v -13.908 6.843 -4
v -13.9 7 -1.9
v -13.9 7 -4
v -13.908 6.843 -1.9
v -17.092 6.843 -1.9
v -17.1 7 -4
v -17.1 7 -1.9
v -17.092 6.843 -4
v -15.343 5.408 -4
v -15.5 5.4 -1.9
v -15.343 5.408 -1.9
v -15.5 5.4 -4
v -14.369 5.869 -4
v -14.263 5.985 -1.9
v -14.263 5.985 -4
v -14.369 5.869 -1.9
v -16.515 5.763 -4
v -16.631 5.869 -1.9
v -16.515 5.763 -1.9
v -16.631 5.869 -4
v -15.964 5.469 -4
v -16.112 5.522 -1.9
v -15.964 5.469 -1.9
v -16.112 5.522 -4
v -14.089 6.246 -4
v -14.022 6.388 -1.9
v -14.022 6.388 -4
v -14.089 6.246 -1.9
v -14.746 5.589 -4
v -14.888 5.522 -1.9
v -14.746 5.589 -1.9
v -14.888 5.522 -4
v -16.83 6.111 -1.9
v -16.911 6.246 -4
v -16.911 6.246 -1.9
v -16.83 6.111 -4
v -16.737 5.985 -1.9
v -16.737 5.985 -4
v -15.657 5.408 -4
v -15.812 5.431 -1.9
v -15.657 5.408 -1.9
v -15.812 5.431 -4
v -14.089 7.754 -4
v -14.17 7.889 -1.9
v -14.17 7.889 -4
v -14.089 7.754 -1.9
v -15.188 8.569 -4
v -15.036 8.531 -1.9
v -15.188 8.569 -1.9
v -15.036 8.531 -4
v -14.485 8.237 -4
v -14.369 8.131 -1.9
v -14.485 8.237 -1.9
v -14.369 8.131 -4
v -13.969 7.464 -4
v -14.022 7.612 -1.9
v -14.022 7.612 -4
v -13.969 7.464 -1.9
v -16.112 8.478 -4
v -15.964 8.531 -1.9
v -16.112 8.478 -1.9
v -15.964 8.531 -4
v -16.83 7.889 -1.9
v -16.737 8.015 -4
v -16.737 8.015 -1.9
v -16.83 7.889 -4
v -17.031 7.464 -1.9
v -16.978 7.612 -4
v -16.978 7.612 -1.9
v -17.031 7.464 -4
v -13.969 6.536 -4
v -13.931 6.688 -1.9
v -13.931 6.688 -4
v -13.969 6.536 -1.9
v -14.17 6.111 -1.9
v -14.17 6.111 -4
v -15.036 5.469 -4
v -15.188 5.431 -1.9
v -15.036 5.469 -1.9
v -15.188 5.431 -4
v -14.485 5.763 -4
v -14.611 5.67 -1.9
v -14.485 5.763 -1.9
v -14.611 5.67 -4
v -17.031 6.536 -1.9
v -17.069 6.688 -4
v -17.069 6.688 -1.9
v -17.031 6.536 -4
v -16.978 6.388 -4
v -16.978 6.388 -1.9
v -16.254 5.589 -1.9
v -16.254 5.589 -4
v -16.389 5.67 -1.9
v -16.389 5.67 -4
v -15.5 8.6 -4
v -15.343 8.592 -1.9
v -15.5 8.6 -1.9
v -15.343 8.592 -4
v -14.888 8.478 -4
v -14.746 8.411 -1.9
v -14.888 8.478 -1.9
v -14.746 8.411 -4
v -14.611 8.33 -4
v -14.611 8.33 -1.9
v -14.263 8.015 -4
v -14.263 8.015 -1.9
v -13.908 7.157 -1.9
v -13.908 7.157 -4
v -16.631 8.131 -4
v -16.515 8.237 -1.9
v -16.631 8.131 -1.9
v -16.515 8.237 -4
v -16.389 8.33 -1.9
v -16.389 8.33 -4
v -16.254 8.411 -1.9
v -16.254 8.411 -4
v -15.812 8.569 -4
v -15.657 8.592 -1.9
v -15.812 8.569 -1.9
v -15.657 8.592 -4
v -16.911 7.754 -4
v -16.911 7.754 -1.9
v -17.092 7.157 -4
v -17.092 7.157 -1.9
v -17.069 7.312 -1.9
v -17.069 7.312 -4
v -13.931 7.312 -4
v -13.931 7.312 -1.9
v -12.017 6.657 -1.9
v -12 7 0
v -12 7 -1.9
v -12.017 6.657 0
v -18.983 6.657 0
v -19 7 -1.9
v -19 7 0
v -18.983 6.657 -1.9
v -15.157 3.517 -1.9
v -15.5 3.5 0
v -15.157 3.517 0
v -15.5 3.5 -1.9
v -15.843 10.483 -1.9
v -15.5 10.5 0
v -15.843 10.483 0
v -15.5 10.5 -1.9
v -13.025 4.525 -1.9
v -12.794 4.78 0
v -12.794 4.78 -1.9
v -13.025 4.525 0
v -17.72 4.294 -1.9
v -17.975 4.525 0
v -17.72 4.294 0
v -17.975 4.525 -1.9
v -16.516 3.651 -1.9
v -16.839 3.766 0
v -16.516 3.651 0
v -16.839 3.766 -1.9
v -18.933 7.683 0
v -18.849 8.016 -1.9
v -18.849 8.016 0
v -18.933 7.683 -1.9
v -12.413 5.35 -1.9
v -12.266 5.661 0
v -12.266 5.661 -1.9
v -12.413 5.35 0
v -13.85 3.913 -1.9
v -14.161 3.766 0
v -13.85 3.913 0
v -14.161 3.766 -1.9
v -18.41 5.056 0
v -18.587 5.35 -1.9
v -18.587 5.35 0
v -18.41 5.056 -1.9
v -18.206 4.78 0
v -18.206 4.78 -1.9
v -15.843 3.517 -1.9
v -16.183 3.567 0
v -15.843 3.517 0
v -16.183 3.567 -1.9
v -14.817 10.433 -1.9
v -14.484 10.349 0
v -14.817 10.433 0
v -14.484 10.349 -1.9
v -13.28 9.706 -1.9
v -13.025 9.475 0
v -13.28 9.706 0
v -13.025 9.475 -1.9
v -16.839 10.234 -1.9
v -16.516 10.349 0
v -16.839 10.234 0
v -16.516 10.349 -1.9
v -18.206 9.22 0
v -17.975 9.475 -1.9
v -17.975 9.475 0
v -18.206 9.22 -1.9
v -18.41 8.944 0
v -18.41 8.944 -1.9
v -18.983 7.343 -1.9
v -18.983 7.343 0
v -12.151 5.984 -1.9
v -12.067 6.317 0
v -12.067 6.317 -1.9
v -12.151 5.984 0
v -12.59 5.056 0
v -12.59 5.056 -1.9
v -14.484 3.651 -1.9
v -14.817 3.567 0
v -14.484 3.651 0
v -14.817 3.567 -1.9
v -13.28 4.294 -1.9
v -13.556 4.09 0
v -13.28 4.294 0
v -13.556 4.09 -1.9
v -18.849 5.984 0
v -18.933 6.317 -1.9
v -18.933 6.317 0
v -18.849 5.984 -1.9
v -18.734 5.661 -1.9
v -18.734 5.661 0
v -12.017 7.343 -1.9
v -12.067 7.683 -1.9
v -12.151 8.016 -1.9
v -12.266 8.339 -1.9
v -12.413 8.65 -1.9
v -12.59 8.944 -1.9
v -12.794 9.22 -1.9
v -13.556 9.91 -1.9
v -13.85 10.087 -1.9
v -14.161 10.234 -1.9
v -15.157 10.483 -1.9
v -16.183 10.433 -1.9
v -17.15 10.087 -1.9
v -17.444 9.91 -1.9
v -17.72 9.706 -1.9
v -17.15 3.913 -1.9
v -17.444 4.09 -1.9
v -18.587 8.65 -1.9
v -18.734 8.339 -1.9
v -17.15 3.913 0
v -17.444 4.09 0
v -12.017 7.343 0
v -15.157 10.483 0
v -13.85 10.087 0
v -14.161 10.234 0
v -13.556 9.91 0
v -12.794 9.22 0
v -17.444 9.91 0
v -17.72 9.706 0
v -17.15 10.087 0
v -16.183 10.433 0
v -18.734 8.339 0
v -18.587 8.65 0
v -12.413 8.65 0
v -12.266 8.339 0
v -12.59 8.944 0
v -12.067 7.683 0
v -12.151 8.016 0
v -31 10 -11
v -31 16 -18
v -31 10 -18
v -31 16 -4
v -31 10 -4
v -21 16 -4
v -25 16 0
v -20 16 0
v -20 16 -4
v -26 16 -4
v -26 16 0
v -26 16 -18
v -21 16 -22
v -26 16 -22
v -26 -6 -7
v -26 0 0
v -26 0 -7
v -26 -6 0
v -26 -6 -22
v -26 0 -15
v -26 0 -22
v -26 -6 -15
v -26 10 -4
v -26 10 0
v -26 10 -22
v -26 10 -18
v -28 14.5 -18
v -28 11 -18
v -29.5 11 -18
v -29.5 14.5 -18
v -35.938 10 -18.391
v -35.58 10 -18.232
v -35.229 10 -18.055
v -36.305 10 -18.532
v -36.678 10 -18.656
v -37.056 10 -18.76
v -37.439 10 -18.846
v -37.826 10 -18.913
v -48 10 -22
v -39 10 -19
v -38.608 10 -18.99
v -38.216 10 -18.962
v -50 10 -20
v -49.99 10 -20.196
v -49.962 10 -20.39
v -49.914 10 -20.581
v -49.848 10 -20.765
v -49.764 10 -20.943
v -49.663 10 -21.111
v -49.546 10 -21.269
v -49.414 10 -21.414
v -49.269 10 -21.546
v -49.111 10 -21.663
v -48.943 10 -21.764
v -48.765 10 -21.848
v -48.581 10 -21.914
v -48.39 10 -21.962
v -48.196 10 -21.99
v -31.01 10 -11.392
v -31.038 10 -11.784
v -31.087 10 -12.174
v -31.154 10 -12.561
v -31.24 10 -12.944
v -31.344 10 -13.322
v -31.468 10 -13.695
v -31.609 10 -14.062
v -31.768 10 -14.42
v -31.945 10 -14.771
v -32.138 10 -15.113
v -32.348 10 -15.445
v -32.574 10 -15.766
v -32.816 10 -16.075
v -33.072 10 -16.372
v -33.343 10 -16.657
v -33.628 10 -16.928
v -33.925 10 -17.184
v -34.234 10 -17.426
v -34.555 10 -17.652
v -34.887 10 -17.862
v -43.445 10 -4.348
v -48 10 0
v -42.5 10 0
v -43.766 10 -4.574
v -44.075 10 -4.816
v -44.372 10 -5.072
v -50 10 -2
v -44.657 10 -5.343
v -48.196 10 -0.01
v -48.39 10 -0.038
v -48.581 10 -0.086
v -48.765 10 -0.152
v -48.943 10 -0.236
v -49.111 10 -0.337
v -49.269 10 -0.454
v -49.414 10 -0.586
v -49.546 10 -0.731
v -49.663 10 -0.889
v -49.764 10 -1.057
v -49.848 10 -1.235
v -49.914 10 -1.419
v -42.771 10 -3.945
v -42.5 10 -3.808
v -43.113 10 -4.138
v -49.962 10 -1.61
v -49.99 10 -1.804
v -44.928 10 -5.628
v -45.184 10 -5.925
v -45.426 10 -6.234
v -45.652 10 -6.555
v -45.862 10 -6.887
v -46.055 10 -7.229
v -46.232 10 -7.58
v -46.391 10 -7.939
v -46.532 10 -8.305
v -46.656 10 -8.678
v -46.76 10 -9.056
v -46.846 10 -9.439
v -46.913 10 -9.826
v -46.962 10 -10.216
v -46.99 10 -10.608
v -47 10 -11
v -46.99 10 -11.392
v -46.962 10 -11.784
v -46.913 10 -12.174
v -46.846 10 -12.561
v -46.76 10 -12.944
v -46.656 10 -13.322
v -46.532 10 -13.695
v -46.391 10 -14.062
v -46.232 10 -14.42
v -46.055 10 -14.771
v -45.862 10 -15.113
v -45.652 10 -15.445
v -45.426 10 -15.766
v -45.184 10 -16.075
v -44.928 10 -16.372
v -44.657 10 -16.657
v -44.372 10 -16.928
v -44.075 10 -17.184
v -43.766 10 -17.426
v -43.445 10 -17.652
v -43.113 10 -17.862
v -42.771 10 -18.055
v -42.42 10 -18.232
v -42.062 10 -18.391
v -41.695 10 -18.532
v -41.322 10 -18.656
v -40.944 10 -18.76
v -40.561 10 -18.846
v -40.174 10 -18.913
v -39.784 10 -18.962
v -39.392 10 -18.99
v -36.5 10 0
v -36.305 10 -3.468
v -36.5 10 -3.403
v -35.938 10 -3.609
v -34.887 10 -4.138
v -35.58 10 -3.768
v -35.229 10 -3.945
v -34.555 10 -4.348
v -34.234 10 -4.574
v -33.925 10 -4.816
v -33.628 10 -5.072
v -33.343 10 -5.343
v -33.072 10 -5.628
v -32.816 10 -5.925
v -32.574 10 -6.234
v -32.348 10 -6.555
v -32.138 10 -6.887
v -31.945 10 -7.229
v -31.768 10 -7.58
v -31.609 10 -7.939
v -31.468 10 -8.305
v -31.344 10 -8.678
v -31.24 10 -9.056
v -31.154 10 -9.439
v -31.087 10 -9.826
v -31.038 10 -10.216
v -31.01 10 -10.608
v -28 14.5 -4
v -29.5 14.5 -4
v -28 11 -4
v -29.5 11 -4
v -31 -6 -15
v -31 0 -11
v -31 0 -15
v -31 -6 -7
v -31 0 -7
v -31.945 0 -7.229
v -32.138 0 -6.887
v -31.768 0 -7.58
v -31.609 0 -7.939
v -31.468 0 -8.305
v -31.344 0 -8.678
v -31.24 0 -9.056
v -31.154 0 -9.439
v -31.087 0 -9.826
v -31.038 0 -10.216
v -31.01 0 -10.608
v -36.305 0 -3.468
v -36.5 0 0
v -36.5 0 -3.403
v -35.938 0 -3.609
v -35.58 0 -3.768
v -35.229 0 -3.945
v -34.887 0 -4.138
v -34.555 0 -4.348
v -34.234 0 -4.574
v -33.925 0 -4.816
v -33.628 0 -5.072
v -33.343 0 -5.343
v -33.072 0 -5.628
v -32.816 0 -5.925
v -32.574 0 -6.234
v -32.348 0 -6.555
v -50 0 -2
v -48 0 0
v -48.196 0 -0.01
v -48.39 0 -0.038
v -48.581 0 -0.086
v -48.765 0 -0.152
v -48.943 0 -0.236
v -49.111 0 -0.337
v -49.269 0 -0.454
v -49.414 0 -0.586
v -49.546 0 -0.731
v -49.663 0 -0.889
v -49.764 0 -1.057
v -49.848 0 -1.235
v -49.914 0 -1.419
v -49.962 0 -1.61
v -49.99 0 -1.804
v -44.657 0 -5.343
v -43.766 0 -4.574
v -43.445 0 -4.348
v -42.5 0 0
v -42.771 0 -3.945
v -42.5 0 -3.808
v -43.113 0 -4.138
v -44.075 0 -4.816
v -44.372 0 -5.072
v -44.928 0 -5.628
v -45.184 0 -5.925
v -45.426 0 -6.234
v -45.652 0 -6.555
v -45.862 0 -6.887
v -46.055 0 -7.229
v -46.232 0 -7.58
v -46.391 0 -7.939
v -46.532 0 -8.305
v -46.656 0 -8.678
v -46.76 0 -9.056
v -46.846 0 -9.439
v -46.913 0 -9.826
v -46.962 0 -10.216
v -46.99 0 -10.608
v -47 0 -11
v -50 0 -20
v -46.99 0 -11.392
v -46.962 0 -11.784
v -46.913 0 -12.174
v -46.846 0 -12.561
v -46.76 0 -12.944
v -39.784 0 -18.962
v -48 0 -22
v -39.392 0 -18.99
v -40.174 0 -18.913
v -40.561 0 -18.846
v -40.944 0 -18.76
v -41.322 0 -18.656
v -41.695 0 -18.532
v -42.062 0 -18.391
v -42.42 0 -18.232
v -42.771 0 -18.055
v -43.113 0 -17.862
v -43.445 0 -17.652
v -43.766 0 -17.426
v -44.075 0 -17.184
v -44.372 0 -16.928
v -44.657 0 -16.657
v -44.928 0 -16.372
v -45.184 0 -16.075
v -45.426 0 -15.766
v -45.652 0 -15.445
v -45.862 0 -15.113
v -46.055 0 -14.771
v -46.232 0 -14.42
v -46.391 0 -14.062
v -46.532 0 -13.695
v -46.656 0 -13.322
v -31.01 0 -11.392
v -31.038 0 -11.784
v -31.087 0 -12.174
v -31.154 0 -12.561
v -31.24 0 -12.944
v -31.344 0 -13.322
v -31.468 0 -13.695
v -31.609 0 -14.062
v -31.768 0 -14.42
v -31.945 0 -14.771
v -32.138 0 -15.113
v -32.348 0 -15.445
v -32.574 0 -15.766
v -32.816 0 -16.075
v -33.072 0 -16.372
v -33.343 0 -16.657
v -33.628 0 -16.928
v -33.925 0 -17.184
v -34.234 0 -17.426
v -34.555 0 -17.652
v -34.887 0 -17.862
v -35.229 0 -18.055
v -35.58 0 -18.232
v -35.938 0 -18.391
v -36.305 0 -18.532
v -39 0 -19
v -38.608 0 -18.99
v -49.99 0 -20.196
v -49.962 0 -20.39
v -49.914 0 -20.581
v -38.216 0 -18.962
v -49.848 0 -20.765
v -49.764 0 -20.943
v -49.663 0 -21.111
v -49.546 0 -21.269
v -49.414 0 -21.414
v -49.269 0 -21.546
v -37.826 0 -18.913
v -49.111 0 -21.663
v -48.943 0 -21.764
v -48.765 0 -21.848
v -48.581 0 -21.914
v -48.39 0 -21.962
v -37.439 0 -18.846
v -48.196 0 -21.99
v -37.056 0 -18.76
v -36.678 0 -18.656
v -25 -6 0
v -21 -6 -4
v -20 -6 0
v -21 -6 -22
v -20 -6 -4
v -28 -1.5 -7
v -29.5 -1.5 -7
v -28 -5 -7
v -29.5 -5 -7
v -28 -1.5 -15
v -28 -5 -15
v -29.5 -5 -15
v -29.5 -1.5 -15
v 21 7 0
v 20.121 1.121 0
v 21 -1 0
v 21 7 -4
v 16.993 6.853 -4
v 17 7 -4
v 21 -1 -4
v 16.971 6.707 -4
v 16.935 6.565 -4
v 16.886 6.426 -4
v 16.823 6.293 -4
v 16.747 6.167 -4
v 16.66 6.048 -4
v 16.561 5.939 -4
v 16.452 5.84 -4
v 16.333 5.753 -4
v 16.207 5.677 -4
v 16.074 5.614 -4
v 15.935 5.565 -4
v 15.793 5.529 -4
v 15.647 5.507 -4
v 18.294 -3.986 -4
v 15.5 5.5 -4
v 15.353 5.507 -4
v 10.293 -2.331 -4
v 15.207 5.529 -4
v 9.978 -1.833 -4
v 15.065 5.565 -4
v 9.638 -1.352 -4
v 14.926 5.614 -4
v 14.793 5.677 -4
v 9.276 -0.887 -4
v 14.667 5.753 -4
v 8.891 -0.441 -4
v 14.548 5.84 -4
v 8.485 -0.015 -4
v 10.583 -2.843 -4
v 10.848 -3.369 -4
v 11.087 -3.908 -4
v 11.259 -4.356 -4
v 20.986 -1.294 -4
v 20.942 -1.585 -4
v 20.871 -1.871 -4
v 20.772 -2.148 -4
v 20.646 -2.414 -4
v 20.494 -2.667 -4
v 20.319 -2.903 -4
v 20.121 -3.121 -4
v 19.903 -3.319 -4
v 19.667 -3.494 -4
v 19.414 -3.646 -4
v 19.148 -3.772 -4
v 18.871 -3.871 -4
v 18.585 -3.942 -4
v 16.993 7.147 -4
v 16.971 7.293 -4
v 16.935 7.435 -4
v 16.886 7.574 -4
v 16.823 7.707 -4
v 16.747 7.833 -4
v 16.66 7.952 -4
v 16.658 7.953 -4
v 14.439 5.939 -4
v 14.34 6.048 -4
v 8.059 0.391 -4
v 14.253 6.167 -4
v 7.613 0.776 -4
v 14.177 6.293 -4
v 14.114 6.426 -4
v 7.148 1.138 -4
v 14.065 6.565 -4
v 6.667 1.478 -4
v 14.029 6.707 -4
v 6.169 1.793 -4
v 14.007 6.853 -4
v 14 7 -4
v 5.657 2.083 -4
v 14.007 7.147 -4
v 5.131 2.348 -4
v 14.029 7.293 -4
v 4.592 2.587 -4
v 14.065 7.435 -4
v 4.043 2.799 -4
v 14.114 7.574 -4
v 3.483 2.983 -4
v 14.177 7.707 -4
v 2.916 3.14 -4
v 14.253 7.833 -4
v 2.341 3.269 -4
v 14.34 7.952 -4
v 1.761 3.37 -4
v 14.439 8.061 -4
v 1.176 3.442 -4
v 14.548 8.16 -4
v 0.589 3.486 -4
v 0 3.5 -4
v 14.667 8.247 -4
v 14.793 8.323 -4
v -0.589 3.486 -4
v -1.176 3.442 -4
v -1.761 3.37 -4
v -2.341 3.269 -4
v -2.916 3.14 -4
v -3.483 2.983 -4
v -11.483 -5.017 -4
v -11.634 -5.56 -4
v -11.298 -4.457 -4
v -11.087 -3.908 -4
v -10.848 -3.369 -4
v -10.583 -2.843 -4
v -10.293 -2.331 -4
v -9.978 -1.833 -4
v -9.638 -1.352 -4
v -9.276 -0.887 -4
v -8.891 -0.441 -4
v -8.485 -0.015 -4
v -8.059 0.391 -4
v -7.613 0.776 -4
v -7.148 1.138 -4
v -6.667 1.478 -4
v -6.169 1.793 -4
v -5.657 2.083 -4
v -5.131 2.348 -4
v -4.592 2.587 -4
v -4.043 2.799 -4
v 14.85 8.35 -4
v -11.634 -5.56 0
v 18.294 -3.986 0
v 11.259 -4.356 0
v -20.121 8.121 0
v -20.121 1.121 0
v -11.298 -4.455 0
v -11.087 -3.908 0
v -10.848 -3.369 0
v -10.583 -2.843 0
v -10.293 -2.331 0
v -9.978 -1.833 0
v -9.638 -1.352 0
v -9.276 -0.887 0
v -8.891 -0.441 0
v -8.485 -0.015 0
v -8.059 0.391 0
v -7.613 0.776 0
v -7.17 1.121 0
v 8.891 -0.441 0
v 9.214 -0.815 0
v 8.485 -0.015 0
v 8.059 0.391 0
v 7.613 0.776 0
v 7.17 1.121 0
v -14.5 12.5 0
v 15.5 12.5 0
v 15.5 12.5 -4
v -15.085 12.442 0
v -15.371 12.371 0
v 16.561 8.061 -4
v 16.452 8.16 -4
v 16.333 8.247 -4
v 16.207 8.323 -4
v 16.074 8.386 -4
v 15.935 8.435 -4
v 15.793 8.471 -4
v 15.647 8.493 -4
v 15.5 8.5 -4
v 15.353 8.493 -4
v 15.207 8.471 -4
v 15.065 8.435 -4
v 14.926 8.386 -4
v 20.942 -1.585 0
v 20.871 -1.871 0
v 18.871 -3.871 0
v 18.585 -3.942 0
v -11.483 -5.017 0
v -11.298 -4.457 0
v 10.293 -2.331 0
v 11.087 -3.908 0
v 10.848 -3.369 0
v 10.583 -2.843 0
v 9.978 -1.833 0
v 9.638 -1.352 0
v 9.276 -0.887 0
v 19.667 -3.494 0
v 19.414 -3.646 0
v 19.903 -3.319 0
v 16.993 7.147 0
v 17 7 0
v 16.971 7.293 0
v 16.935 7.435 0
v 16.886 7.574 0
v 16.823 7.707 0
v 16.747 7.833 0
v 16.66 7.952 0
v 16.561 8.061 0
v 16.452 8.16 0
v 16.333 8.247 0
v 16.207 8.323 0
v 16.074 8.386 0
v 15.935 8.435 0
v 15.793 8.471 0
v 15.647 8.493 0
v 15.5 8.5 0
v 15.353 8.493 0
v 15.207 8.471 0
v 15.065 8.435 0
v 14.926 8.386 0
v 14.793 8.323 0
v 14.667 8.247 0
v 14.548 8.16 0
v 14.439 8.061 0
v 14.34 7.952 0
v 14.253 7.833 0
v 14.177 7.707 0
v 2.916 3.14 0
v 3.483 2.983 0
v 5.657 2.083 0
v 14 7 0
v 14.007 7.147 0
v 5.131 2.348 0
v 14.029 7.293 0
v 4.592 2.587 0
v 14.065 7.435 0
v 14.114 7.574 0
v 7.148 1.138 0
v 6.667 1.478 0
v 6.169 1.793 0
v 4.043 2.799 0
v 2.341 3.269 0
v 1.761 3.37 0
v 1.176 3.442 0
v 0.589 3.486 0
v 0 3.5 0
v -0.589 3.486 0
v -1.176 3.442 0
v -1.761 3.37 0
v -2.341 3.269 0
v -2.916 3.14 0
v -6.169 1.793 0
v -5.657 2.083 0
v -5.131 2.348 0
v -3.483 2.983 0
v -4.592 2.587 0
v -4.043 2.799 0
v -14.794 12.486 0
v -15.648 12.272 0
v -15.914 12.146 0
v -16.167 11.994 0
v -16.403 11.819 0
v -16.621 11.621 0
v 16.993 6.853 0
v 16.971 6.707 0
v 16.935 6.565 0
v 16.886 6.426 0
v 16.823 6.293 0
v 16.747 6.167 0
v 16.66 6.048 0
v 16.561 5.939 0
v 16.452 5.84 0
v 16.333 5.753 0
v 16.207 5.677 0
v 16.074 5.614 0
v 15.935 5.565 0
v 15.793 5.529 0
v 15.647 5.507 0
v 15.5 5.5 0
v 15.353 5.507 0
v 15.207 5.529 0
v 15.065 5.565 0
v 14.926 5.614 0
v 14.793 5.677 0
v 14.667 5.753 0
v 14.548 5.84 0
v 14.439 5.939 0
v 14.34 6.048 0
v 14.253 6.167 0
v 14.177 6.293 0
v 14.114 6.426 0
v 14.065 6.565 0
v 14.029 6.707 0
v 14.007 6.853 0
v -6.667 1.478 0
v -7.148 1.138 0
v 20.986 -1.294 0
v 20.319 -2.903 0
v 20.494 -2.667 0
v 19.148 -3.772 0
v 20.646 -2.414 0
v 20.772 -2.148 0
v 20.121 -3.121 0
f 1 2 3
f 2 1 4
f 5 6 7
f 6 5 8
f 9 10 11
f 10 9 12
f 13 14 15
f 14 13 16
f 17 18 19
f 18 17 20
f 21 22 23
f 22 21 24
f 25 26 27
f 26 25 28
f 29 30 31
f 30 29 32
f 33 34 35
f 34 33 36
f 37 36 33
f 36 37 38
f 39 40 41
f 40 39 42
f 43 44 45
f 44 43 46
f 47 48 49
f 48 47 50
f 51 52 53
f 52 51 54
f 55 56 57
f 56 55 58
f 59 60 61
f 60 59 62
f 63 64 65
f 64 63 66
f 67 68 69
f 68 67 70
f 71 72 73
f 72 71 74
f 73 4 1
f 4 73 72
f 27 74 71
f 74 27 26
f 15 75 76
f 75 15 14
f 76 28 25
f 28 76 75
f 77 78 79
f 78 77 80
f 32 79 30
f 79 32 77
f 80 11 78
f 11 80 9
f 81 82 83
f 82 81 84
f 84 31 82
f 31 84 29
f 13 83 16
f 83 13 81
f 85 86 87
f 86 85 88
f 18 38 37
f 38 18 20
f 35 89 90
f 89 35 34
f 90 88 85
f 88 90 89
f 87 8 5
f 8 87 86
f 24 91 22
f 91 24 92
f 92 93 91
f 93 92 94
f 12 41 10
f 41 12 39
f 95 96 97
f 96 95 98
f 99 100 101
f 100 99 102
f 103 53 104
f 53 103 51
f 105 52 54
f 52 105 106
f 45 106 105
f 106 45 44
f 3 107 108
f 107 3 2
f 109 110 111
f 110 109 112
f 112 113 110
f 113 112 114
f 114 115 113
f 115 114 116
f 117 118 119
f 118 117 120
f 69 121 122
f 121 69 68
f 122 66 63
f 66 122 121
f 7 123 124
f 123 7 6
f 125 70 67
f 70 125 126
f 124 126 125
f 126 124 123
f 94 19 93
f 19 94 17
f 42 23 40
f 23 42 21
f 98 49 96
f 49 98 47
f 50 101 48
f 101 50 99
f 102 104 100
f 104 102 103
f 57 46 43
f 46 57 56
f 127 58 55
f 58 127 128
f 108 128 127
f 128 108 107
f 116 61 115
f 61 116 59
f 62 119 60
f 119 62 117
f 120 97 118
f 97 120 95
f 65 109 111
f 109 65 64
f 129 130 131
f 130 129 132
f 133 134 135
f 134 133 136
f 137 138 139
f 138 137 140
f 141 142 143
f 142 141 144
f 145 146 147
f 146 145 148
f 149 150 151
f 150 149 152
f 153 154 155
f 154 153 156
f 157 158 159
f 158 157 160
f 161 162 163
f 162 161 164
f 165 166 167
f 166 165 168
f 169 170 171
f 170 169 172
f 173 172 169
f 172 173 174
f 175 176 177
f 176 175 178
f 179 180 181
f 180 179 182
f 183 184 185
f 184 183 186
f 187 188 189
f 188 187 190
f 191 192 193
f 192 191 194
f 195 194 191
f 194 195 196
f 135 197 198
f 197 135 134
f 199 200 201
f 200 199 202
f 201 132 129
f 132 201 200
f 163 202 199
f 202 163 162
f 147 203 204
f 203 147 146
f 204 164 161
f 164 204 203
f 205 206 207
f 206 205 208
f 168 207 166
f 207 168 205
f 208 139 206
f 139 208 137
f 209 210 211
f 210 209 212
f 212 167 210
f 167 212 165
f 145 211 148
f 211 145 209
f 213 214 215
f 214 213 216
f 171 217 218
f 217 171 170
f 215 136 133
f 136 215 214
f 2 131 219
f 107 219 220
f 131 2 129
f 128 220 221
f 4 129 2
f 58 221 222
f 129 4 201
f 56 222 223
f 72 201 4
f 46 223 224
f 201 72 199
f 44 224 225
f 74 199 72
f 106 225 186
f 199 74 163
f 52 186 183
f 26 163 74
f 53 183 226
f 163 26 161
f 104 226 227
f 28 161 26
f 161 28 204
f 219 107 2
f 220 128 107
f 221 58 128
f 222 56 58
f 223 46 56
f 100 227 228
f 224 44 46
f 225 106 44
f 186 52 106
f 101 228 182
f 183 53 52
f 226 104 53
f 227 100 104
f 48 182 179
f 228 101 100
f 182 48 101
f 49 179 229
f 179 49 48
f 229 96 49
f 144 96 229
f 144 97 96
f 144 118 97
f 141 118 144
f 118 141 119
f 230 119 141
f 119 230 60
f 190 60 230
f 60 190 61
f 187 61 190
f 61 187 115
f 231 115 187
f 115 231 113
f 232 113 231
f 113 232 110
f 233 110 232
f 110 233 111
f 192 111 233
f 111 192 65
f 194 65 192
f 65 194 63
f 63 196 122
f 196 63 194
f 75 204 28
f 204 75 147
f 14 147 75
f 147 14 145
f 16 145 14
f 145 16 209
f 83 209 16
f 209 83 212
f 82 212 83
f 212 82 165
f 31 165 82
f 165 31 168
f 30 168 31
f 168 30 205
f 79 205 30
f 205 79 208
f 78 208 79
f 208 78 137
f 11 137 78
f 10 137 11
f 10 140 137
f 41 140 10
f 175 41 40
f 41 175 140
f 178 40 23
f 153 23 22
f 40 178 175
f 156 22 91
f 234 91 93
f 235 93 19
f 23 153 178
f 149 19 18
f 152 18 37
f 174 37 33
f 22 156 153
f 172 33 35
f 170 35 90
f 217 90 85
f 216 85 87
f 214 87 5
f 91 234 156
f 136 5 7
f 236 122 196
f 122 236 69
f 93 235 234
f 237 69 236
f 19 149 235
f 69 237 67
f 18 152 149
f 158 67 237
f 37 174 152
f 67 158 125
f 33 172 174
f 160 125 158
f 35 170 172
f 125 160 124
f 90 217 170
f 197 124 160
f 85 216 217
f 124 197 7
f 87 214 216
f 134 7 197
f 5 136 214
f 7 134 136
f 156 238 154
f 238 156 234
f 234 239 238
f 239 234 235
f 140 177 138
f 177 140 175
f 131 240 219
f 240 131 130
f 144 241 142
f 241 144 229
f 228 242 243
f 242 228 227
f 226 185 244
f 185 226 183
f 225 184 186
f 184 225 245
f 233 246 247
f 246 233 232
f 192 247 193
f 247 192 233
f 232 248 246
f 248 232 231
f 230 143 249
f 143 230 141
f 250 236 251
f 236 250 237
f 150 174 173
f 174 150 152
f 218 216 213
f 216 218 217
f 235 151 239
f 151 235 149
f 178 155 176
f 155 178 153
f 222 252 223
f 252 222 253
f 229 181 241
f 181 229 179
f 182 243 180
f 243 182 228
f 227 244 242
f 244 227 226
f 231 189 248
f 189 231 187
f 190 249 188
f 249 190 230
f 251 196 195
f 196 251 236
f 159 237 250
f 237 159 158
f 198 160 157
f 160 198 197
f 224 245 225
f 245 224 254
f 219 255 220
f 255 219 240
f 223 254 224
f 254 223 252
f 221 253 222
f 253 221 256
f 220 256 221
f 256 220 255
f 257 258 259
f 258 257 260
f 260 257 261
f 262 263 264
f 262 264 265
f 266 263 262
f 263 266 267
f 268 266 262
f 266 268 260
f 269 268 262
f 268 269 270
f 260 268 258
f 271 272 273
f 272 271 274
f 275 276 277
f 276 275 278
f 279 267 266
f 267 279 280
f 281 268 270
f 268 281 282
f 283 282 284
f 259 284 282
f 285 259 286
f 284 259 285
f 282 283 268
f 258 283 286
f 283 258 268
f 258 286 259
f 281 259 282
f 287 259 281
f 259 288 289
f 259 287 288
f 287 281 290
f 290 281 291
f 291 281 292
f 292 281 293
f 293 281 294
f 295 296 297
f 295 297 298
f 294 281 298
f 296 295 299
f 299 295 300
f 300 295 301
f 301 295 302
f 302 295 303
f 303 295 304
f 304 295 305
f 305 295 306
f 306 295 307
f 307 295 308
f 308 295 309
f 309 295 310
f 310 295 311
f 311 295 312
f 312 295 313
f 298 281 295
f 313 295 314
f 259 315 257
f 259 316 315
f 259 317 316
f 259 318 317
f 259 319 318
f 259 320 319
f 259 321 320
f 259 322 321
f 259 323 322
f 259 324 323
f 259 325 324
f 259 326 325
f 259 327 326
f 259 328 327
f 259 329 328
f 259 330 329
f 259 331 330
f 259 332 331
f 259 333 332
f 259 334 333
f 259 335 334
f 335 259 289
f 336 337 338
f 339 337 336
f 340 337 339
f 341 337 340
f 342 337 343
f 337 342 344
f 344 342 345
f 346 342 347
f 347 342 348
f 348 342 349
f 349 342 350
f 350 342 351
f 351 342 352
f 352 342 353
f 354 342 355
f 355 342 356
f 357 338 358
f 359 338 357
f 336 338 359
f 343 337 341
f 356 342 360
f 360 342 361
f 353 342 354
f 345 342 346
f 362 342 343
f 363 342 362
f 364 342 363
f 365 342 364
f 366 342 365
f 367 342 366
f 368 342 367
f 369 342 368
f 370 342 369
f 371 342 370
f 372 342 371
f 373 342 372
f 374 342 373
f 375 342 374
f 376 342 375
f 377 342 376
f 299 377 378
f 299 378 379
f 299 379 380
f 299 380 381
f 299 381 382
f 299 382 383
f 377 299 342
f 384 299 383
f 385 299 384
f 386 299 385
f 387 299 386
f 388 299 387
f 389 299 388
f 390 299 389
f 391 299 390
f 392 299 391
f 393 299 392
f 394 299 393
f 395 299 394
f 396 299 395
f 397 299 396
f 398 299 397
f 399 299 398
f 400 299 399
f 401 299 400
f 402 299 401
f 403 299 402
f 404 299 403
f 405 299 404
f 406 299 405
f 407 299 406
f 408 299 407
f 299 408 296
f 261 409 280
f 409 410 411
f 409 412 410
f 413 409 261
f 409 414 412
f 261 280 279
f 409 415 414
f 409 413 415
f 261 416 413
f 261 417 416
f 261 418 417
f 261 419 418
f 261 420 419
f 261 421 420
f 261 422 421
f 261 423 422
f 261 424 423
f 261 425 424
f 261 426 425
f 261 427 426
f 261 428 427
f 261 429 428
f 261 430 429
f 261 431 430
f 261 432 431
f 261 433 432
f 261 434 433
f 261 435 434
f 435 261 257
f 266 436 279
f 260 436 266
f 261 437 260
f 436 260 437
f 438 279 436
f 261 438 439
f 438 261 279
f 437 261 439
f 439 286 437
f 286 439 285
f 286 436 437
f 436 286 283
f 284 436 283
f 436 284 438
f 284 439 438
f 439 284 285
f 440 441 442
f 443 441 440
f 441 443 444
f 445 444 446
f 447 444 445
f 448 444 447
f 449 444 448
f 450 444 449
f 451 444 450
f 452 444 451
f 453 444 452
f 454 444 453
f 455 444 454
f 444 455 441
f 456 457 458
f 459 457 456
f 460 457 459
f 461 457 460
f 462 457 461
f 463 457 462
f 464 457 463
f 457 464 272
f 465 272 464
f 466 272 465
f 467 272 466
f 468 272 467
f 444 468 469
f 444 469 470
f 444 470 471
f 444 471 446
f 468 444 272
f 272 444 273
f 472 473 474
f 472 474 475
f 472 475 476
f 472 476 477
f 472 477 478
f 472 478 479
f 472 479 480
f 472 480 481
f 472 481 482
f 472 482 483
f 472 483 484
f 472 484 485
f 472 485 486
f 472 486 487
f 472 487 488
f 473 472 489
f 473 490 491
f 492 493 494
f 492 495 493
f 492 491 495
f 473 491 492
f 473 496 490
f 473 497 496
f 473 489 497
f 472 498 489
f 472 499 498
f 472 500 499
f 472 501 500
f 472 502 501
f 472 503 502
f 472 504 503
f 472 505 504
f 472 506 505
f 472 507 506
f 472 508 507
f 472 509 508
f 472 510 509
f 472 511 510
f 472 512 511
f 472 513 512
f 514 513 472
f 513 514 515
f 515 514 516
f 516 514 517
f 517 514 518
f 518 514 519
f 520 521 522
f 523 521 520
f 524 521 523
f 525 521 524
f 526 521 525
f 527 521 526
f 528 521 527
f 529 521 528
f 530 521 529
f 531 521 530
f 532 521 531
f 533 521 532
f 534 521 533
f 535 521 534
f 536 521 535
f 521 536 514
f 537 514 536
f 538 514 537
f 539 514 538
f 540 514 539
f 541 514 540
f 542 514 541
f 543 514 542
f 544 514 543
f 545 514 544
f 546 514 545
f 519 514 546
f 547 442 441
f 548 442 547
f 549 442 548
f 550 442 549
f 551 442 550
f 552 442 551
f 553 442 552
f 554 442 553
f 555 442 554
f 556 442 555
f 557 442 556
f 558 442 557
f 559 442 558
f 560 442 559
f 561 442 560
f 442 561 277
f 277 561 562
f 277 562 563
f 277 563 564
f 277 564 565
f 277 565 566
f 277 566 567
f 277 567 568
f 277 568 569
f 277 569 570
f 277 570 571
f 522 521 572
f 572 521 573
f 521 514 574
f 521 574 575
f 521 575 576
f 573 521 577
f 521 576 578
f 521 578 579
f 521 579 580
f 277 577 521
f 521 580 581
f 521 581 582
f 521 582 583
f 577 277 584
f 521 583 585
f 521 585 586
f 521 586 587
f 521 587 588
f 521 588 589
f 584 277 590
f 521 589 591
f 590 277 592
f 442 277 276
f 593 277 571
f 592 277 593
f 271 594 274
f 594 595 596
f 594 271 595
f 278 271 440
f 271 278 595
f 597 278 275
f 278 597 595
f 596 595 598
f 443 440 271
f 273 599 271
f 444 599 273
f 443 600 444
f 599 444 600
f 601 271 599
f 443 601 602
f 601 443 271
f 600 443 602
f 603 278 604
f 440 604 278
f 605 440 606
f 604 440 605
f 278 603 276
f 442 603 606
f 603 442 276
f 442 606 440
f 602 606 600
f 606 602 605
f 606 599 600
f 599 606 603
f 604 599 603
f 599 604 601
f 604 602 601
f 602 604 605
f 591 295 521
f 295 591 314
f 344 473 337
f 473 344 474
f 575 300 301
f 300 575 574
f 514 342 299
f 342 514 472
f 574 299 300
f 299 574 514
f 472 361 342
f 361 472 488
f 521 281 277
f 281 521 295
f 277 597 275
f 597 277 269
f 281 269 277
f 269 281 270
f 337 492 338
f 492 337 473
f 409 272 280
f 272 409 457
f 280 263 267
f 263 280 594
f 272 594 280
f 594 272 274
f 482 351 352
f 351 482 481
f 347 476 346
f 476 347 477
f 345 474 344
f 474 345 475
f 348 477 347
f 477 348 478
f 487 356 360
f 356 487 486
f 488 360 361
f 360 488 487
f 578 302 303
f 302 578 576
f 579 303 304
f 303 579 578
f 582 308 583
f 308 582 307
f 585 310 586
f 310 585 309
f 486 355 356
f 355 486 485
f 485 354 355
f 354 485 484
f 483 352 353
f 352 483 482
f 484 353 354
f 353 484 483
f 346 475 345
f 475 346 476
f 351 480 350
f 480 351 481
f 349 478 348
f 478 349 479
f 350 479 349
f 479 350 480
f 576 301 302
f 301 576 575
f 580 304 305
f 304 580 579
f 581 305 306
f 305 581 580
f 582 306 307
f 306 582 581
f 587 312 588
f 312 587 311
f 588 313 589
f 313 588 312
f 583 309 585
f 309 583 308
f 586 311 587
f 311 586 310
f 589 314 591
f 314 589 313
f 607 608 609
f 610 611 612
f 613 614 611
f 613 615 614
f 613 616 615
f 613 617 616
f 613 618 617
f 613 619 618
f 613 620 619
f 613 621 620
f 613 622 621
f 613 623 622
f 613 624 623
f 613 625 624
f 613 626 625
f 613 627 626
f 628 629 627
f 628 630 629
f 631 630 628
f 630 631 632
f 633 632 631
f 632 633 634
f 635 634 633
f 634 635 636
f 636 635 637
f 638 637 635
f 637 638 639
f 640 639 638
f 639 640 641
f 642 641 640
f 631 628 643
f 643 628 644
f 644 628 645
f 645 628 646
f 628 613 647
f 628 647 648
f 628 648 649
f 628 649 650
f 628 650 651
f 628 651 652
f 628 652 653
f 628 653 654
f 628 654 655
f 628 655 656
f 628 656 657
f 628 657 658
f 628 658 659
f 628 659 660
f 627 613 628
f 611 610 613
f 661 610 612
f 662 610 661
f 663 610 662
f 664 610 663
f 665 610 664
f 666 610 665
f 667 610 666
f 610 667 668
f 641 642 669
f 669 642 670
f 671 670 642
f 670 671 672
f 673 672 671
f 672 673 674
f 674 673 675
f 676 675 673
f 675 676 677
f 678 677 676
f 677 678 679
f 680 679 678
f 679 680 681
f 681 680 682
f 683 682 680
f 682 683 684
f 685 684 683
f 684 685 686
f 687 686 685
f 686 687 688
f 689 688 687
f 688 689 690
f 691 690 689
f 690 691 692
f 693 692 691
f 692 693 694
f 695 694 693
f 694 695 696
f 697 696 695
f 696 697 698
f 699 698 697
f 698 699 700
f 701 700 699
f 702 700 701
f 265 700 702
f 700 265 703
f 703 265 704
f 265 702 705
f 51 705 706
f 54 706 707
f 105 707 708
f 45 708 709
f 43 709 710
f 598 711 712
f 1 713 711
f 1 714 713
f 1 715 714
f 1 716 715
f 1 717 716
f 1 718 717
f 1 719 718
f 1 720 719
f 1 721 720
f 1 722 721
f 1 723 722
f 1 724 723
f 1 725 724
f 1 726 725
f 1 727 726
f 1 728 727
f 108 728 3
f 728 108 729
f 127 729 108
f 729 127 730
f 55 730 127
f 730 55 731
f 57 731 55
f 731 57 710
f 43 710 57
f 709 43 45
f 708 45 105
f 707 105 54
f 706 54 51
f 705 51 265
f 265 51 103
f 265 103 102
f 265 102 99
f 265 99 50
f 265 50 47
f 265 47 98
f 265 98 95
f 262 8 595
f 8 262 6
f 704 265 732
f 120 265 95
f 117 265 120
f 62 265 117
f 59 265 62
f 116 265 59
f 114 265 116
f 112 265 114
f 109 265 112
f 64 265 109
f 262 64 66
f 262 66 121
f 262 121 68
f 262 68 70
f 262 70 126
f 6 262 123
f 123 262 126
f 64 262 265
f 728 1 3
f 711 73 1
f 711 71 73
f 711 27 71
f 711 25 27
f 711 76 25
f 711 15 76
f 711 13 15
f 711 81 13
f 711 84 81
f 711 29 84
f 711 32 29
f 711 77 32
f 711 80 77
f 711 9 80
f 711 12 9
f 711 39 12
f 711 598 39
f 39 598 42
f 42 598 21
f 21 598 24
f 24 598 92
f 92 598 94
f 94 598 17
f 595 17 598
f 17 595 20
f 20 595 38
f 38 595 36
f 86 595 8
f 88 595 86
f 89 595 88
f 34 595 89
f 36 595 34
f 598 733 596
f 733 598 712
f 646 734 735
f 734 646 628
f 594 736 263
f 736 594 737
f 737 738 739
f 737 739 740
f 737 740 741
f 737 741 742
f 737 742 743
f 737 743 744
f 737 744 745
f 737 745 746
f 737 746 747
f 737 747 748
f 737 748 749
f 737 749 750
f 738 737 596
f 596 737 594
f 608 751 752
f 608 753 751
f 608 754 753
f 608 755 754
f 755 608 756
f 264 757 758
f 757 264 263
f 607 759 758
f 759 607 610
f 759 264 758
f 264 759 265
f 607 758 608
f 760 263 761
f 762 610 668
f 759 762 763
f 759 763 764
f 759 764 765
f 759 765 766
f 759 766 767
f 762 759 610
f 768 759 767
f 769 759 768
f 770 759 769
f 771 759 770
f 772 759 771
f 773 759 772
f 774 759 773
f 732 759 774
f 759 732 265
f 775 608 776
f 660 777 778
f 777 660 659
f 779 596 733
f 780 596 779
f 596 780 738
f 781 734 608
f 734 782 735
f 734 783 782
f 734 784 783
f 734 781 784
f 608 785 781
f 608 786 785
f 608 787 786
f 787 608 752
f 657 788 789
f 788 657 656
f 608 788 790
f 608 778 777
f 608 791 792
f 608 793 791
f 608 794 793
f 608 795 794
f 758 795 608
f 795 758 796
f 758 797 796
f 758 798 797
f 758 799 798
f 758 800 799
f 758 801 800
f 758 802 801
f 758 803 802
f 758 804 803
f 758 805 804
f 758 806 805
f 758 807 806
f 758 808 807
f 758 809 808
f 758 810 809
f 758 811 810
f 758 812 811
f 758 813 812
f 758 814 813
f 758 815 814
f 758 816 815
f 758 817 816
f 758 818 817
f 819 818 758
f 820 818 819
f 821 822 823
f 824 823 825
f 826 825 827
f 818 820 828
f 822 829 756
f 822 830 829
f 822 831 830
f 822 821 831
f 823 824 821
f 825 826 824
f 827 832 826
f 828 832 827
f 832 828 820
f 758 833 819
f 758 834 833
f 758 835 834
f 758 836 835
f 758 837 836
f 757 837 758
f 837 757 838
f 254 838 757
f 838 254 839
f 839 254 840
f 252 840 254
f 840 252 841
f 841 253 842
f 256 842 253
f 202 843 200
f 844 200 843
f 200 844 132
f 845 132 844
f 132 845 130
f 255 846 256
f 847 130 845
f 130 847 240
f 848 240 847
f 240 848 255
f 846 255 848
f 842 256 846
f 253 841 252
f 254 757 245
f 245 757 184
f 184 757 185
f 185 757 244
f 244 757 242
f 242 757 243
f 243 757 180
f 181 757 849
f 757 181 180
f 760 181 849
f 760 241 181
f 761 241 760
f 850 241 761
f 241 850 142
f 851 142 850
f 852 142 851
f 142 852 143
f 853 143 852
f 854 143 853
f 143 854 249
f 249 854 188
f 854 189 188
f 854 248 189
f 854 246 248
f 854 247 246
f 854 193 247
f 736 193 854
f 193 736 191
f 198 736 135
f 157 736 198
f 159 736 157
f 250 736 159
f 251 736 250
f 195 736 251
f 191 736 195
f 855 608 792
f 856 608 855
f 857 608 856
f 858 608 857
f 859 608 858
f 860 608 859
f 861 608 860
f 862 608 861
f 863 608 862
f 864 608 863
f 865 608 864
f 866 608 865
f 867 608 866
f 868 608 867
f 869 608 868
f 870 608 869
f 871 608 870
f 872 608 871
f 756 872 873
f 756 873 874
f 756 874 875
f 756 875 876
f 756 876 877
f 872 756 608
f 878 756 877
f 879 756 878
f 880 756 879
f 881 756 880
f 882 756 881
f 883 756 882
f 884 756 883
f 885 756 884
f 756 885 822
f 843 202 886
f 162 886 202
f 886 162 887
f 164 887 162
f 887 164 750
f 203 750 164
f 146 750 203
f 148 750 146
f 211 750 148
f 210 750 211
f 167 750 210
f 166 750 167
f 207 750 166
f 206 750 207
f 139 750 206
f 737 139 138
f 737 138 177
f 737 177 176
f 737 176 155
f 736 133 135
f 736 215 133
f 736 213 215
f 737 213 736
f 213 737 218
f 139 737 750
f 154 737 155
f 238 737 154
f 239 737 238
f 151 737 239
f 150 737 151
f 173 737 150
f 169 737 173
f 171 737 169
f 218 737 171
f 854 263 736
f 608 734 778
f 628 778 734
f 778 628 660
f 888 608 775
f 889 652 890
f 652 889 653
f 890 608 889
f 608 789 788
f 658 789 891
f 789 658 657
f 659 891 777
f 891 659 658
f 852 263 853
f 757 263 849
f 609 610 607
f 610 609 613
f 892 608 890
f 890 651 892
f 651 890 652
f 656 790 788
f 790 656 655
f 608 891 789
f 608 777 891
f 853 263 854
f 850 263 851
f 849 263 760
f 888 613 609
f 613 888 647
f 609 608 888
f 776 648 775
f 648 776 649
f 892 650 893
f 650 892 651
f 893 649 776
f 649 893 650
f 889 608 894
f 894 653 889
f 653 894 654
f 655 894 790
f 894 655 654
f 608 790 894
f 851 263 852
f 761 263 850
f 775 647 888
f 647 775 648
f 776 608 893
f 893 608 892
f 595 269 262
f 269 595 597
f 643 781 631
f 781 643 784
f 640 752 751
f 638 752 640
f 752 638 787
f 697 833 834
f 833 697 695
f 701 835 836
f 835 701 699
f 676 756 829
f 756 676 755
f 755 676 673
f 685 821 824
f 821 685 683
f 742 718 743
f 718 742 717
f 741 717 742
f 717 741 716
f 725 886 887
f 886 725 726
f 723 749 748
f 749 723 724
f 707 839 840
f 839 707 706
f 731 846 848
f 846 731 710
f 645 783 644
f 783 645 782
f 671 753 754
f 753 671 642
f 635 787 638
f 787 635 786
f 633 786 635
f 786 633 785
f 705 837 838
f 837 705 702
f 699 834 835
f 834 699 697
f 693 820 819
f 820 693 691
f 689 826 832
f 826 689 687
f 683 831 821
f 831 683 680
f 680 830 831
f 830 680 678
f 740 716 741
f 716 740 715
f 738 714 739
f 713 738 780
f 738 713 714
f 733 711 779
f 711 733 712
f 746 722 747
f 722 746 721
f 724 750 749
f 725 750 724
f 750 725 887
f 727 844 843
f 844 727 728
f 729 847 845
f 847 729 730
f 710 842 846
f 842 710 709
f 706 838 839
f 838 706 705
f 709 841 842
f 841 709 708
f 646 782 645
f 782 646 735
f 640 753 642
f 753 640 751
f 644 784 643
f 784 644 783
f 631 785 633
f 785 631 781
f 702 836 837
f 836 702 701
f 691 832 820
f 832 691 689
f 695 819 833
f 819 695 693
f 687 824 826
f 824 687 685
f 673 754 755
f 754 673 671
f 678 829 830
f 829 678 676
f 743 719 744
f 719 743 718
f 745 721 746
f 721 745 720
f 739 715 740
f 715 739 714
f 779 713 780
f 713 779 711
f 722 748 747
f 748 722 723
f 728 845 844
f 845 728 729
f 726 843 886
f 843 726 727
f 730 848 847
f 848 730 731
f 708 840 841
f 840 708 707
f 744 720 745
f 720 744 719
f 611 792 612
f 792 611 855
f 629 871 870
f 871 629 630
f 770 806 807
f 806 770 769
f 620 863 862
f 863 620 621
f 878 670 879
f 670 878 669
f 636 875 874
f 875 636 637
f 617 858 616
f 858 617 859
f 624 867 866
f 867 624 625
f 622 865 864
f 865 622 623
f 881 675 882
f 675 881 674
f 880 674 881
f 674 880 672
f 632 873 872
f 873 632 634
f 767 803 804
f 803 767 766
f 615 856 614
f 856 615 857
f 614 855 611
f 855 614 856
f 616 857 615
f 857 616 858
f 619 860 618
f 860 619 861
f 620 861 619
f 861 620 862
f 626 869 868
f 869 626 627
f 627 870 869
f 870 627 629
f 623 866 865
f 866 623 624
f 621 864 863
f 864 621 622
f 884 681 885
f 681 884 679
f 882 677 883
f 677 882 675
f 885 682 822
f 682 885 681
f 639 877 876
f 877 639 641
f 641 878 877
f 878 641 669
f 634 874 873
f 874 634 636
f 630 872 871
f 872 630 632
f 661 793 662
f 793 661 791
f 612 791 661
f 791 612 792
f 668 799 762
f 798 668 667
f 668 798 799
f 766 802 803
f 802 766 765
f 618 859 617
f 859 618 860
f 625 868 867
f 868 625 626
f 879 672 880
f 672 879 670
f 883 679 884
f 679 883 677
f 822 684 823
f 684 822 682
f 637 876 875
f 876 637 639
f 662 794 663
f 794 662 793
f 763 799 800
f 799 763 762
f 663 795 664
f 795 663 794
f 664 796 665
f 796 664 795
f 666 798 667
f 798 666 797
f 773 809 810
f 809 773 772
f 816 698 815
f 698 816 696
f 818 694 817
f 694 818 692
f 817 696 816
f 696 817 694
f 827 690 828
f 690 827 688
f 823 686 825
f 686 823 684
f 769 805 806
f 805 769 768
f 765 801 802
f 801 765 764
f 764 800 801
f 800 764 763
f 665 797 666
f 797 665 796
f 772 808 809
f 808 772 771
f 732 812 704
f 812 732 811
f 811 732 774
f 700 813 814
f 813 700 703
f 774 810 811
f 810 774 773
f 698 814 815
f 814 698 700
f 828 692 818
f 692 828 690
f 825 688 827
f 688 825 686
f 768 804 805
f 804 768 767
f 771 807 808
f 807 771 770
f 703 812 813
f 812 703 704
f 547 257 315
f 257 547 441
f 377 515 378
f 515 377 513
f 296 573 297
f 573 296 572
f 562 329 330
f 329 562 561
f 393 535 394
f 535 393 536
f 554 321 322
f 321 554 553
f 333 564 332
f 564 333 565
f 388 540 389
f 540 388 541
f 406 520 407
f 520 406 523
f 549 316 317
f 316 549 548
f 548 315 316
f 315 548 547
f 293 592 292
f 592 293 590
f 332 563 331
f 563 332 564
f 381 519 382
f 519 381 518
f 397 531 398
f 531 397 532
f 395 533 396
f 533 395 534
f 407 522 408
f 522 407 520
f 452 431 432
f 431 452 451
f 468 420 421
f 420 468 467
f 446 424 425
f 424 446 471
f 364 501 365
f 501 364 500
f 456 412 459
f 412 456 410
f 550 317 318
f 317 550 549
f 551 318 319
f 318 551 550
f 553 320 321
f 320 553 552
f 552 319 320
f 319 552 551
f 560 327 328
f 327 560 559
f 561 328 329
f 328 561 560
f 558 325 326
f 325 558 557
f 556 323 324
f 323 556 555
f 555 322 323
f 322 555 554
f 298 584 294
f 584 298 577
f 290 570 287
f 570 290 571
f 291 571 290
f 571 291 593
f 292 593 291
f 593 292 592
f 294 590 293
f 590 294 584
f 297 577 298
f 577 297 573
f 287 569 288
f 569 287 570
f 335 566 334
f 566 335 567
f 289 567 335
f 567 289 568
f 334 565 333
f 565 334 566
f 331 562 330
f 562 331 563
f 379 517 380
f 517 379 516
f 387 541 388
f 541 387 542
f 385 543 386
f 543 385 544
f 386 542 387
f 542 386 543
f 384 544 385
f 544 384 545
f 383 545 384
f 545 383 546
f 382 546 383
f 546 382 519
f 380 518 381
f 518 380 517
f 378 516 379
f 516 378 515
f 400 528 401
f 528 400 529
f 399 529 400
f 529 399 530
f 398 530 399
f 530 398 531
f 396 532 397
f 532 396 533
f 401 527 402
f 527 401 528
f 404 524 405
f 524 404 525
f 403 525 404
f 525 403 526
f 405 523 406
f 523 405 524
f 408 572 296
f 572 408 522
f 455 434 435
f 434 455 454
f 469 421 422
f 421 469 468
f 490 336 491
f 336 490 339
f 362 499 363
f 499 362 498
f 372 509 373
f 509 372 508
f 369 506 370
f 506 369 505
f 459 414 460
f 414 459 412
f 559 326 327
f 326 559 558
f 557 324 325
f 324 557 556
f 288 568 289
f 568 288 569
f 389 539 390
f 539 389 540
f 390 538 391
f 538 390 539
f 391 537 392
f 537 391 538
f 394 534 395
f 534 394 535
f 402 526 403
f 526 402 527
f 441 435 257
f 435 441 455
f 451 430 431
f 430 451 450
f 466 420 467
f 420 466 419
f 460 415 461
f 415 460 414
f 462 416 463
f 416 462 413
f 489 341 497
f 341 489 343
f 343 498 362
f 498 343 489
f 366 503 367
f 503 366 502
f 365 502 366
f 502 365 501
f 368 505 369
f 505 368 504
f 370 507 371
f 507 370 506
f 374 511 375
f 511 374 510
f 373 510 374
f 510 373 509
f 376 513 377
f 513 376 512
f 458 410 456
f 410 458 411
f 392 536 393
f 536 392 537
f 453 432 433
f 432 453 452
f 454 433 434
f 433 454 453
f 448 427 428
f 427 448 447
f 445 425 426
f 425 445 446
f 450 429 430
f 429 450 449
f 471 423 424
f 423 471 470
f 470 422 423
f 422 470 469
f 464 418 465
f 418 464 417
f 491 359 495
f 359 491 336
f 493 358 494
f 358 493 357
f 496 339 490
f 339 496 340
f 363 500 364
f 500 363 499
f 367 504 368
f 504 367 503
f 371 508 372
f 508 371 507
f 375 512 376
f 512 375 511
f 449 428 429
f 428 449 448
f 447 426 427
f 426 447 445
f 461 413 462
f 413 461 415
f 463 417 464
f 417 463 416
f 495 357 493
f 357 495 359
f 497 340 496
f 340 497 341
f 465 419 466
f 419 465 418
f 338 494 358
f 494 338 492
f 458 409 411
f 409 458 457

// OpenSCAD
mirrored = 0;      // 1 = "right",  0 = "left"
height_m = 20;     //motor to hotend top. You may need to increase this for prometheus!

print();

module print() {    
    mirror ([mirrored, 0, 0]) {
        translate([0,-50,6]) rotate([-90, 0, 0])
        top_plate();
    }        
}

module top_plate() {
    difference() {
        union() {
            // Motor mounting plate
            hull() {
                translate([-14.5, 6, height_m+39.5]) rotate([-90, 0, 0]) cylinder(r=3, h=4, $fn=64);            
                translate([-18, 6, height_m+36]) rotate([-90, 0, 0]) cylinder(r=3, h=4, $fn=64);
                translate([-18, 6, height_m+29]) rotate([-90, 0, 0]) cylinder(r=3, h=4, $fn=64);
                translate([ 31/2, 6, height_m+37]) rotate([-90, 0, 0]) cylinder(r = 5.5, h=4, $fn=4);  
                translate([18, 6, height_m+29]) rotate([-90, 0, 0]) cylinder(r=3, h=4, $fn=64);
                translate([-25, 6, 44]) cube([5, 4, 22]);
            }
            // Connector from plate to mounting block
            translate([-26, 6, 44]) cube([5, 22, 22]);
            
            // Mounting block for 16mm tube
            translate([-44, 8, 55]) 
            union () {
                // mounting block base
                hull() {
                    translate([-4, 0, 0]) cylinder(r=2, h=10, $fn=64, center=true);
                    translate([18, 0, 0]) cube([4, 4, 10], center=true);
                    translate([-4, 18, 0]) cylinder(r=2, h=10, $fn=64, center=true);
                    translate([18, 18, 0]) cube([4, 4, 10], center=true);
                }
                //zip-tie block top
                difference() {
                    translate([13, 2, 5]) cube([5,14,6]);
                    translate([14.5, 1.9, 6]) cube([1.5,14.2,3.5]);
                }
                //zip-tie block bottom
                difference() {
                    translate([13, 5, -11]) cube([5,8,6]);
                    translate([14.5, 4.9, -10]) cube([1.5,8.2,3.5]);
                }
            }
        }

        // NEMA-17 motor cutout
        translate([0,10.1,height_m+21.5]) rotate([90,0,0]) cylinder(d=24, h=5, $fn=128);
            
        //mount hole (to motor)
        translate([-31/2, 5.9, height_m+37]) rotate([-90, 0, 0]) { 
            cylinder(r = 1.6, h = 5,  $fn=64);
            cylinder(r = 3.5, h = 2,  $fn=64);            
        }
        
        // mount hole (to motor/lever)
        translate([ 31/2, 5.9, height_m+37]) rotate([-90, 0, 0]) {
            cylinder(d = 3, h = 5,  $fn=64);
        }
        
        //tube hole
        translate([-39,17,55]) cylinder(d= 16, h=10.1, $fn=128, center=true);
        
        //cable slot
        translate([-39.5, 8, 55]) cube([6, 5, 10.1], center=true);
    }
}
